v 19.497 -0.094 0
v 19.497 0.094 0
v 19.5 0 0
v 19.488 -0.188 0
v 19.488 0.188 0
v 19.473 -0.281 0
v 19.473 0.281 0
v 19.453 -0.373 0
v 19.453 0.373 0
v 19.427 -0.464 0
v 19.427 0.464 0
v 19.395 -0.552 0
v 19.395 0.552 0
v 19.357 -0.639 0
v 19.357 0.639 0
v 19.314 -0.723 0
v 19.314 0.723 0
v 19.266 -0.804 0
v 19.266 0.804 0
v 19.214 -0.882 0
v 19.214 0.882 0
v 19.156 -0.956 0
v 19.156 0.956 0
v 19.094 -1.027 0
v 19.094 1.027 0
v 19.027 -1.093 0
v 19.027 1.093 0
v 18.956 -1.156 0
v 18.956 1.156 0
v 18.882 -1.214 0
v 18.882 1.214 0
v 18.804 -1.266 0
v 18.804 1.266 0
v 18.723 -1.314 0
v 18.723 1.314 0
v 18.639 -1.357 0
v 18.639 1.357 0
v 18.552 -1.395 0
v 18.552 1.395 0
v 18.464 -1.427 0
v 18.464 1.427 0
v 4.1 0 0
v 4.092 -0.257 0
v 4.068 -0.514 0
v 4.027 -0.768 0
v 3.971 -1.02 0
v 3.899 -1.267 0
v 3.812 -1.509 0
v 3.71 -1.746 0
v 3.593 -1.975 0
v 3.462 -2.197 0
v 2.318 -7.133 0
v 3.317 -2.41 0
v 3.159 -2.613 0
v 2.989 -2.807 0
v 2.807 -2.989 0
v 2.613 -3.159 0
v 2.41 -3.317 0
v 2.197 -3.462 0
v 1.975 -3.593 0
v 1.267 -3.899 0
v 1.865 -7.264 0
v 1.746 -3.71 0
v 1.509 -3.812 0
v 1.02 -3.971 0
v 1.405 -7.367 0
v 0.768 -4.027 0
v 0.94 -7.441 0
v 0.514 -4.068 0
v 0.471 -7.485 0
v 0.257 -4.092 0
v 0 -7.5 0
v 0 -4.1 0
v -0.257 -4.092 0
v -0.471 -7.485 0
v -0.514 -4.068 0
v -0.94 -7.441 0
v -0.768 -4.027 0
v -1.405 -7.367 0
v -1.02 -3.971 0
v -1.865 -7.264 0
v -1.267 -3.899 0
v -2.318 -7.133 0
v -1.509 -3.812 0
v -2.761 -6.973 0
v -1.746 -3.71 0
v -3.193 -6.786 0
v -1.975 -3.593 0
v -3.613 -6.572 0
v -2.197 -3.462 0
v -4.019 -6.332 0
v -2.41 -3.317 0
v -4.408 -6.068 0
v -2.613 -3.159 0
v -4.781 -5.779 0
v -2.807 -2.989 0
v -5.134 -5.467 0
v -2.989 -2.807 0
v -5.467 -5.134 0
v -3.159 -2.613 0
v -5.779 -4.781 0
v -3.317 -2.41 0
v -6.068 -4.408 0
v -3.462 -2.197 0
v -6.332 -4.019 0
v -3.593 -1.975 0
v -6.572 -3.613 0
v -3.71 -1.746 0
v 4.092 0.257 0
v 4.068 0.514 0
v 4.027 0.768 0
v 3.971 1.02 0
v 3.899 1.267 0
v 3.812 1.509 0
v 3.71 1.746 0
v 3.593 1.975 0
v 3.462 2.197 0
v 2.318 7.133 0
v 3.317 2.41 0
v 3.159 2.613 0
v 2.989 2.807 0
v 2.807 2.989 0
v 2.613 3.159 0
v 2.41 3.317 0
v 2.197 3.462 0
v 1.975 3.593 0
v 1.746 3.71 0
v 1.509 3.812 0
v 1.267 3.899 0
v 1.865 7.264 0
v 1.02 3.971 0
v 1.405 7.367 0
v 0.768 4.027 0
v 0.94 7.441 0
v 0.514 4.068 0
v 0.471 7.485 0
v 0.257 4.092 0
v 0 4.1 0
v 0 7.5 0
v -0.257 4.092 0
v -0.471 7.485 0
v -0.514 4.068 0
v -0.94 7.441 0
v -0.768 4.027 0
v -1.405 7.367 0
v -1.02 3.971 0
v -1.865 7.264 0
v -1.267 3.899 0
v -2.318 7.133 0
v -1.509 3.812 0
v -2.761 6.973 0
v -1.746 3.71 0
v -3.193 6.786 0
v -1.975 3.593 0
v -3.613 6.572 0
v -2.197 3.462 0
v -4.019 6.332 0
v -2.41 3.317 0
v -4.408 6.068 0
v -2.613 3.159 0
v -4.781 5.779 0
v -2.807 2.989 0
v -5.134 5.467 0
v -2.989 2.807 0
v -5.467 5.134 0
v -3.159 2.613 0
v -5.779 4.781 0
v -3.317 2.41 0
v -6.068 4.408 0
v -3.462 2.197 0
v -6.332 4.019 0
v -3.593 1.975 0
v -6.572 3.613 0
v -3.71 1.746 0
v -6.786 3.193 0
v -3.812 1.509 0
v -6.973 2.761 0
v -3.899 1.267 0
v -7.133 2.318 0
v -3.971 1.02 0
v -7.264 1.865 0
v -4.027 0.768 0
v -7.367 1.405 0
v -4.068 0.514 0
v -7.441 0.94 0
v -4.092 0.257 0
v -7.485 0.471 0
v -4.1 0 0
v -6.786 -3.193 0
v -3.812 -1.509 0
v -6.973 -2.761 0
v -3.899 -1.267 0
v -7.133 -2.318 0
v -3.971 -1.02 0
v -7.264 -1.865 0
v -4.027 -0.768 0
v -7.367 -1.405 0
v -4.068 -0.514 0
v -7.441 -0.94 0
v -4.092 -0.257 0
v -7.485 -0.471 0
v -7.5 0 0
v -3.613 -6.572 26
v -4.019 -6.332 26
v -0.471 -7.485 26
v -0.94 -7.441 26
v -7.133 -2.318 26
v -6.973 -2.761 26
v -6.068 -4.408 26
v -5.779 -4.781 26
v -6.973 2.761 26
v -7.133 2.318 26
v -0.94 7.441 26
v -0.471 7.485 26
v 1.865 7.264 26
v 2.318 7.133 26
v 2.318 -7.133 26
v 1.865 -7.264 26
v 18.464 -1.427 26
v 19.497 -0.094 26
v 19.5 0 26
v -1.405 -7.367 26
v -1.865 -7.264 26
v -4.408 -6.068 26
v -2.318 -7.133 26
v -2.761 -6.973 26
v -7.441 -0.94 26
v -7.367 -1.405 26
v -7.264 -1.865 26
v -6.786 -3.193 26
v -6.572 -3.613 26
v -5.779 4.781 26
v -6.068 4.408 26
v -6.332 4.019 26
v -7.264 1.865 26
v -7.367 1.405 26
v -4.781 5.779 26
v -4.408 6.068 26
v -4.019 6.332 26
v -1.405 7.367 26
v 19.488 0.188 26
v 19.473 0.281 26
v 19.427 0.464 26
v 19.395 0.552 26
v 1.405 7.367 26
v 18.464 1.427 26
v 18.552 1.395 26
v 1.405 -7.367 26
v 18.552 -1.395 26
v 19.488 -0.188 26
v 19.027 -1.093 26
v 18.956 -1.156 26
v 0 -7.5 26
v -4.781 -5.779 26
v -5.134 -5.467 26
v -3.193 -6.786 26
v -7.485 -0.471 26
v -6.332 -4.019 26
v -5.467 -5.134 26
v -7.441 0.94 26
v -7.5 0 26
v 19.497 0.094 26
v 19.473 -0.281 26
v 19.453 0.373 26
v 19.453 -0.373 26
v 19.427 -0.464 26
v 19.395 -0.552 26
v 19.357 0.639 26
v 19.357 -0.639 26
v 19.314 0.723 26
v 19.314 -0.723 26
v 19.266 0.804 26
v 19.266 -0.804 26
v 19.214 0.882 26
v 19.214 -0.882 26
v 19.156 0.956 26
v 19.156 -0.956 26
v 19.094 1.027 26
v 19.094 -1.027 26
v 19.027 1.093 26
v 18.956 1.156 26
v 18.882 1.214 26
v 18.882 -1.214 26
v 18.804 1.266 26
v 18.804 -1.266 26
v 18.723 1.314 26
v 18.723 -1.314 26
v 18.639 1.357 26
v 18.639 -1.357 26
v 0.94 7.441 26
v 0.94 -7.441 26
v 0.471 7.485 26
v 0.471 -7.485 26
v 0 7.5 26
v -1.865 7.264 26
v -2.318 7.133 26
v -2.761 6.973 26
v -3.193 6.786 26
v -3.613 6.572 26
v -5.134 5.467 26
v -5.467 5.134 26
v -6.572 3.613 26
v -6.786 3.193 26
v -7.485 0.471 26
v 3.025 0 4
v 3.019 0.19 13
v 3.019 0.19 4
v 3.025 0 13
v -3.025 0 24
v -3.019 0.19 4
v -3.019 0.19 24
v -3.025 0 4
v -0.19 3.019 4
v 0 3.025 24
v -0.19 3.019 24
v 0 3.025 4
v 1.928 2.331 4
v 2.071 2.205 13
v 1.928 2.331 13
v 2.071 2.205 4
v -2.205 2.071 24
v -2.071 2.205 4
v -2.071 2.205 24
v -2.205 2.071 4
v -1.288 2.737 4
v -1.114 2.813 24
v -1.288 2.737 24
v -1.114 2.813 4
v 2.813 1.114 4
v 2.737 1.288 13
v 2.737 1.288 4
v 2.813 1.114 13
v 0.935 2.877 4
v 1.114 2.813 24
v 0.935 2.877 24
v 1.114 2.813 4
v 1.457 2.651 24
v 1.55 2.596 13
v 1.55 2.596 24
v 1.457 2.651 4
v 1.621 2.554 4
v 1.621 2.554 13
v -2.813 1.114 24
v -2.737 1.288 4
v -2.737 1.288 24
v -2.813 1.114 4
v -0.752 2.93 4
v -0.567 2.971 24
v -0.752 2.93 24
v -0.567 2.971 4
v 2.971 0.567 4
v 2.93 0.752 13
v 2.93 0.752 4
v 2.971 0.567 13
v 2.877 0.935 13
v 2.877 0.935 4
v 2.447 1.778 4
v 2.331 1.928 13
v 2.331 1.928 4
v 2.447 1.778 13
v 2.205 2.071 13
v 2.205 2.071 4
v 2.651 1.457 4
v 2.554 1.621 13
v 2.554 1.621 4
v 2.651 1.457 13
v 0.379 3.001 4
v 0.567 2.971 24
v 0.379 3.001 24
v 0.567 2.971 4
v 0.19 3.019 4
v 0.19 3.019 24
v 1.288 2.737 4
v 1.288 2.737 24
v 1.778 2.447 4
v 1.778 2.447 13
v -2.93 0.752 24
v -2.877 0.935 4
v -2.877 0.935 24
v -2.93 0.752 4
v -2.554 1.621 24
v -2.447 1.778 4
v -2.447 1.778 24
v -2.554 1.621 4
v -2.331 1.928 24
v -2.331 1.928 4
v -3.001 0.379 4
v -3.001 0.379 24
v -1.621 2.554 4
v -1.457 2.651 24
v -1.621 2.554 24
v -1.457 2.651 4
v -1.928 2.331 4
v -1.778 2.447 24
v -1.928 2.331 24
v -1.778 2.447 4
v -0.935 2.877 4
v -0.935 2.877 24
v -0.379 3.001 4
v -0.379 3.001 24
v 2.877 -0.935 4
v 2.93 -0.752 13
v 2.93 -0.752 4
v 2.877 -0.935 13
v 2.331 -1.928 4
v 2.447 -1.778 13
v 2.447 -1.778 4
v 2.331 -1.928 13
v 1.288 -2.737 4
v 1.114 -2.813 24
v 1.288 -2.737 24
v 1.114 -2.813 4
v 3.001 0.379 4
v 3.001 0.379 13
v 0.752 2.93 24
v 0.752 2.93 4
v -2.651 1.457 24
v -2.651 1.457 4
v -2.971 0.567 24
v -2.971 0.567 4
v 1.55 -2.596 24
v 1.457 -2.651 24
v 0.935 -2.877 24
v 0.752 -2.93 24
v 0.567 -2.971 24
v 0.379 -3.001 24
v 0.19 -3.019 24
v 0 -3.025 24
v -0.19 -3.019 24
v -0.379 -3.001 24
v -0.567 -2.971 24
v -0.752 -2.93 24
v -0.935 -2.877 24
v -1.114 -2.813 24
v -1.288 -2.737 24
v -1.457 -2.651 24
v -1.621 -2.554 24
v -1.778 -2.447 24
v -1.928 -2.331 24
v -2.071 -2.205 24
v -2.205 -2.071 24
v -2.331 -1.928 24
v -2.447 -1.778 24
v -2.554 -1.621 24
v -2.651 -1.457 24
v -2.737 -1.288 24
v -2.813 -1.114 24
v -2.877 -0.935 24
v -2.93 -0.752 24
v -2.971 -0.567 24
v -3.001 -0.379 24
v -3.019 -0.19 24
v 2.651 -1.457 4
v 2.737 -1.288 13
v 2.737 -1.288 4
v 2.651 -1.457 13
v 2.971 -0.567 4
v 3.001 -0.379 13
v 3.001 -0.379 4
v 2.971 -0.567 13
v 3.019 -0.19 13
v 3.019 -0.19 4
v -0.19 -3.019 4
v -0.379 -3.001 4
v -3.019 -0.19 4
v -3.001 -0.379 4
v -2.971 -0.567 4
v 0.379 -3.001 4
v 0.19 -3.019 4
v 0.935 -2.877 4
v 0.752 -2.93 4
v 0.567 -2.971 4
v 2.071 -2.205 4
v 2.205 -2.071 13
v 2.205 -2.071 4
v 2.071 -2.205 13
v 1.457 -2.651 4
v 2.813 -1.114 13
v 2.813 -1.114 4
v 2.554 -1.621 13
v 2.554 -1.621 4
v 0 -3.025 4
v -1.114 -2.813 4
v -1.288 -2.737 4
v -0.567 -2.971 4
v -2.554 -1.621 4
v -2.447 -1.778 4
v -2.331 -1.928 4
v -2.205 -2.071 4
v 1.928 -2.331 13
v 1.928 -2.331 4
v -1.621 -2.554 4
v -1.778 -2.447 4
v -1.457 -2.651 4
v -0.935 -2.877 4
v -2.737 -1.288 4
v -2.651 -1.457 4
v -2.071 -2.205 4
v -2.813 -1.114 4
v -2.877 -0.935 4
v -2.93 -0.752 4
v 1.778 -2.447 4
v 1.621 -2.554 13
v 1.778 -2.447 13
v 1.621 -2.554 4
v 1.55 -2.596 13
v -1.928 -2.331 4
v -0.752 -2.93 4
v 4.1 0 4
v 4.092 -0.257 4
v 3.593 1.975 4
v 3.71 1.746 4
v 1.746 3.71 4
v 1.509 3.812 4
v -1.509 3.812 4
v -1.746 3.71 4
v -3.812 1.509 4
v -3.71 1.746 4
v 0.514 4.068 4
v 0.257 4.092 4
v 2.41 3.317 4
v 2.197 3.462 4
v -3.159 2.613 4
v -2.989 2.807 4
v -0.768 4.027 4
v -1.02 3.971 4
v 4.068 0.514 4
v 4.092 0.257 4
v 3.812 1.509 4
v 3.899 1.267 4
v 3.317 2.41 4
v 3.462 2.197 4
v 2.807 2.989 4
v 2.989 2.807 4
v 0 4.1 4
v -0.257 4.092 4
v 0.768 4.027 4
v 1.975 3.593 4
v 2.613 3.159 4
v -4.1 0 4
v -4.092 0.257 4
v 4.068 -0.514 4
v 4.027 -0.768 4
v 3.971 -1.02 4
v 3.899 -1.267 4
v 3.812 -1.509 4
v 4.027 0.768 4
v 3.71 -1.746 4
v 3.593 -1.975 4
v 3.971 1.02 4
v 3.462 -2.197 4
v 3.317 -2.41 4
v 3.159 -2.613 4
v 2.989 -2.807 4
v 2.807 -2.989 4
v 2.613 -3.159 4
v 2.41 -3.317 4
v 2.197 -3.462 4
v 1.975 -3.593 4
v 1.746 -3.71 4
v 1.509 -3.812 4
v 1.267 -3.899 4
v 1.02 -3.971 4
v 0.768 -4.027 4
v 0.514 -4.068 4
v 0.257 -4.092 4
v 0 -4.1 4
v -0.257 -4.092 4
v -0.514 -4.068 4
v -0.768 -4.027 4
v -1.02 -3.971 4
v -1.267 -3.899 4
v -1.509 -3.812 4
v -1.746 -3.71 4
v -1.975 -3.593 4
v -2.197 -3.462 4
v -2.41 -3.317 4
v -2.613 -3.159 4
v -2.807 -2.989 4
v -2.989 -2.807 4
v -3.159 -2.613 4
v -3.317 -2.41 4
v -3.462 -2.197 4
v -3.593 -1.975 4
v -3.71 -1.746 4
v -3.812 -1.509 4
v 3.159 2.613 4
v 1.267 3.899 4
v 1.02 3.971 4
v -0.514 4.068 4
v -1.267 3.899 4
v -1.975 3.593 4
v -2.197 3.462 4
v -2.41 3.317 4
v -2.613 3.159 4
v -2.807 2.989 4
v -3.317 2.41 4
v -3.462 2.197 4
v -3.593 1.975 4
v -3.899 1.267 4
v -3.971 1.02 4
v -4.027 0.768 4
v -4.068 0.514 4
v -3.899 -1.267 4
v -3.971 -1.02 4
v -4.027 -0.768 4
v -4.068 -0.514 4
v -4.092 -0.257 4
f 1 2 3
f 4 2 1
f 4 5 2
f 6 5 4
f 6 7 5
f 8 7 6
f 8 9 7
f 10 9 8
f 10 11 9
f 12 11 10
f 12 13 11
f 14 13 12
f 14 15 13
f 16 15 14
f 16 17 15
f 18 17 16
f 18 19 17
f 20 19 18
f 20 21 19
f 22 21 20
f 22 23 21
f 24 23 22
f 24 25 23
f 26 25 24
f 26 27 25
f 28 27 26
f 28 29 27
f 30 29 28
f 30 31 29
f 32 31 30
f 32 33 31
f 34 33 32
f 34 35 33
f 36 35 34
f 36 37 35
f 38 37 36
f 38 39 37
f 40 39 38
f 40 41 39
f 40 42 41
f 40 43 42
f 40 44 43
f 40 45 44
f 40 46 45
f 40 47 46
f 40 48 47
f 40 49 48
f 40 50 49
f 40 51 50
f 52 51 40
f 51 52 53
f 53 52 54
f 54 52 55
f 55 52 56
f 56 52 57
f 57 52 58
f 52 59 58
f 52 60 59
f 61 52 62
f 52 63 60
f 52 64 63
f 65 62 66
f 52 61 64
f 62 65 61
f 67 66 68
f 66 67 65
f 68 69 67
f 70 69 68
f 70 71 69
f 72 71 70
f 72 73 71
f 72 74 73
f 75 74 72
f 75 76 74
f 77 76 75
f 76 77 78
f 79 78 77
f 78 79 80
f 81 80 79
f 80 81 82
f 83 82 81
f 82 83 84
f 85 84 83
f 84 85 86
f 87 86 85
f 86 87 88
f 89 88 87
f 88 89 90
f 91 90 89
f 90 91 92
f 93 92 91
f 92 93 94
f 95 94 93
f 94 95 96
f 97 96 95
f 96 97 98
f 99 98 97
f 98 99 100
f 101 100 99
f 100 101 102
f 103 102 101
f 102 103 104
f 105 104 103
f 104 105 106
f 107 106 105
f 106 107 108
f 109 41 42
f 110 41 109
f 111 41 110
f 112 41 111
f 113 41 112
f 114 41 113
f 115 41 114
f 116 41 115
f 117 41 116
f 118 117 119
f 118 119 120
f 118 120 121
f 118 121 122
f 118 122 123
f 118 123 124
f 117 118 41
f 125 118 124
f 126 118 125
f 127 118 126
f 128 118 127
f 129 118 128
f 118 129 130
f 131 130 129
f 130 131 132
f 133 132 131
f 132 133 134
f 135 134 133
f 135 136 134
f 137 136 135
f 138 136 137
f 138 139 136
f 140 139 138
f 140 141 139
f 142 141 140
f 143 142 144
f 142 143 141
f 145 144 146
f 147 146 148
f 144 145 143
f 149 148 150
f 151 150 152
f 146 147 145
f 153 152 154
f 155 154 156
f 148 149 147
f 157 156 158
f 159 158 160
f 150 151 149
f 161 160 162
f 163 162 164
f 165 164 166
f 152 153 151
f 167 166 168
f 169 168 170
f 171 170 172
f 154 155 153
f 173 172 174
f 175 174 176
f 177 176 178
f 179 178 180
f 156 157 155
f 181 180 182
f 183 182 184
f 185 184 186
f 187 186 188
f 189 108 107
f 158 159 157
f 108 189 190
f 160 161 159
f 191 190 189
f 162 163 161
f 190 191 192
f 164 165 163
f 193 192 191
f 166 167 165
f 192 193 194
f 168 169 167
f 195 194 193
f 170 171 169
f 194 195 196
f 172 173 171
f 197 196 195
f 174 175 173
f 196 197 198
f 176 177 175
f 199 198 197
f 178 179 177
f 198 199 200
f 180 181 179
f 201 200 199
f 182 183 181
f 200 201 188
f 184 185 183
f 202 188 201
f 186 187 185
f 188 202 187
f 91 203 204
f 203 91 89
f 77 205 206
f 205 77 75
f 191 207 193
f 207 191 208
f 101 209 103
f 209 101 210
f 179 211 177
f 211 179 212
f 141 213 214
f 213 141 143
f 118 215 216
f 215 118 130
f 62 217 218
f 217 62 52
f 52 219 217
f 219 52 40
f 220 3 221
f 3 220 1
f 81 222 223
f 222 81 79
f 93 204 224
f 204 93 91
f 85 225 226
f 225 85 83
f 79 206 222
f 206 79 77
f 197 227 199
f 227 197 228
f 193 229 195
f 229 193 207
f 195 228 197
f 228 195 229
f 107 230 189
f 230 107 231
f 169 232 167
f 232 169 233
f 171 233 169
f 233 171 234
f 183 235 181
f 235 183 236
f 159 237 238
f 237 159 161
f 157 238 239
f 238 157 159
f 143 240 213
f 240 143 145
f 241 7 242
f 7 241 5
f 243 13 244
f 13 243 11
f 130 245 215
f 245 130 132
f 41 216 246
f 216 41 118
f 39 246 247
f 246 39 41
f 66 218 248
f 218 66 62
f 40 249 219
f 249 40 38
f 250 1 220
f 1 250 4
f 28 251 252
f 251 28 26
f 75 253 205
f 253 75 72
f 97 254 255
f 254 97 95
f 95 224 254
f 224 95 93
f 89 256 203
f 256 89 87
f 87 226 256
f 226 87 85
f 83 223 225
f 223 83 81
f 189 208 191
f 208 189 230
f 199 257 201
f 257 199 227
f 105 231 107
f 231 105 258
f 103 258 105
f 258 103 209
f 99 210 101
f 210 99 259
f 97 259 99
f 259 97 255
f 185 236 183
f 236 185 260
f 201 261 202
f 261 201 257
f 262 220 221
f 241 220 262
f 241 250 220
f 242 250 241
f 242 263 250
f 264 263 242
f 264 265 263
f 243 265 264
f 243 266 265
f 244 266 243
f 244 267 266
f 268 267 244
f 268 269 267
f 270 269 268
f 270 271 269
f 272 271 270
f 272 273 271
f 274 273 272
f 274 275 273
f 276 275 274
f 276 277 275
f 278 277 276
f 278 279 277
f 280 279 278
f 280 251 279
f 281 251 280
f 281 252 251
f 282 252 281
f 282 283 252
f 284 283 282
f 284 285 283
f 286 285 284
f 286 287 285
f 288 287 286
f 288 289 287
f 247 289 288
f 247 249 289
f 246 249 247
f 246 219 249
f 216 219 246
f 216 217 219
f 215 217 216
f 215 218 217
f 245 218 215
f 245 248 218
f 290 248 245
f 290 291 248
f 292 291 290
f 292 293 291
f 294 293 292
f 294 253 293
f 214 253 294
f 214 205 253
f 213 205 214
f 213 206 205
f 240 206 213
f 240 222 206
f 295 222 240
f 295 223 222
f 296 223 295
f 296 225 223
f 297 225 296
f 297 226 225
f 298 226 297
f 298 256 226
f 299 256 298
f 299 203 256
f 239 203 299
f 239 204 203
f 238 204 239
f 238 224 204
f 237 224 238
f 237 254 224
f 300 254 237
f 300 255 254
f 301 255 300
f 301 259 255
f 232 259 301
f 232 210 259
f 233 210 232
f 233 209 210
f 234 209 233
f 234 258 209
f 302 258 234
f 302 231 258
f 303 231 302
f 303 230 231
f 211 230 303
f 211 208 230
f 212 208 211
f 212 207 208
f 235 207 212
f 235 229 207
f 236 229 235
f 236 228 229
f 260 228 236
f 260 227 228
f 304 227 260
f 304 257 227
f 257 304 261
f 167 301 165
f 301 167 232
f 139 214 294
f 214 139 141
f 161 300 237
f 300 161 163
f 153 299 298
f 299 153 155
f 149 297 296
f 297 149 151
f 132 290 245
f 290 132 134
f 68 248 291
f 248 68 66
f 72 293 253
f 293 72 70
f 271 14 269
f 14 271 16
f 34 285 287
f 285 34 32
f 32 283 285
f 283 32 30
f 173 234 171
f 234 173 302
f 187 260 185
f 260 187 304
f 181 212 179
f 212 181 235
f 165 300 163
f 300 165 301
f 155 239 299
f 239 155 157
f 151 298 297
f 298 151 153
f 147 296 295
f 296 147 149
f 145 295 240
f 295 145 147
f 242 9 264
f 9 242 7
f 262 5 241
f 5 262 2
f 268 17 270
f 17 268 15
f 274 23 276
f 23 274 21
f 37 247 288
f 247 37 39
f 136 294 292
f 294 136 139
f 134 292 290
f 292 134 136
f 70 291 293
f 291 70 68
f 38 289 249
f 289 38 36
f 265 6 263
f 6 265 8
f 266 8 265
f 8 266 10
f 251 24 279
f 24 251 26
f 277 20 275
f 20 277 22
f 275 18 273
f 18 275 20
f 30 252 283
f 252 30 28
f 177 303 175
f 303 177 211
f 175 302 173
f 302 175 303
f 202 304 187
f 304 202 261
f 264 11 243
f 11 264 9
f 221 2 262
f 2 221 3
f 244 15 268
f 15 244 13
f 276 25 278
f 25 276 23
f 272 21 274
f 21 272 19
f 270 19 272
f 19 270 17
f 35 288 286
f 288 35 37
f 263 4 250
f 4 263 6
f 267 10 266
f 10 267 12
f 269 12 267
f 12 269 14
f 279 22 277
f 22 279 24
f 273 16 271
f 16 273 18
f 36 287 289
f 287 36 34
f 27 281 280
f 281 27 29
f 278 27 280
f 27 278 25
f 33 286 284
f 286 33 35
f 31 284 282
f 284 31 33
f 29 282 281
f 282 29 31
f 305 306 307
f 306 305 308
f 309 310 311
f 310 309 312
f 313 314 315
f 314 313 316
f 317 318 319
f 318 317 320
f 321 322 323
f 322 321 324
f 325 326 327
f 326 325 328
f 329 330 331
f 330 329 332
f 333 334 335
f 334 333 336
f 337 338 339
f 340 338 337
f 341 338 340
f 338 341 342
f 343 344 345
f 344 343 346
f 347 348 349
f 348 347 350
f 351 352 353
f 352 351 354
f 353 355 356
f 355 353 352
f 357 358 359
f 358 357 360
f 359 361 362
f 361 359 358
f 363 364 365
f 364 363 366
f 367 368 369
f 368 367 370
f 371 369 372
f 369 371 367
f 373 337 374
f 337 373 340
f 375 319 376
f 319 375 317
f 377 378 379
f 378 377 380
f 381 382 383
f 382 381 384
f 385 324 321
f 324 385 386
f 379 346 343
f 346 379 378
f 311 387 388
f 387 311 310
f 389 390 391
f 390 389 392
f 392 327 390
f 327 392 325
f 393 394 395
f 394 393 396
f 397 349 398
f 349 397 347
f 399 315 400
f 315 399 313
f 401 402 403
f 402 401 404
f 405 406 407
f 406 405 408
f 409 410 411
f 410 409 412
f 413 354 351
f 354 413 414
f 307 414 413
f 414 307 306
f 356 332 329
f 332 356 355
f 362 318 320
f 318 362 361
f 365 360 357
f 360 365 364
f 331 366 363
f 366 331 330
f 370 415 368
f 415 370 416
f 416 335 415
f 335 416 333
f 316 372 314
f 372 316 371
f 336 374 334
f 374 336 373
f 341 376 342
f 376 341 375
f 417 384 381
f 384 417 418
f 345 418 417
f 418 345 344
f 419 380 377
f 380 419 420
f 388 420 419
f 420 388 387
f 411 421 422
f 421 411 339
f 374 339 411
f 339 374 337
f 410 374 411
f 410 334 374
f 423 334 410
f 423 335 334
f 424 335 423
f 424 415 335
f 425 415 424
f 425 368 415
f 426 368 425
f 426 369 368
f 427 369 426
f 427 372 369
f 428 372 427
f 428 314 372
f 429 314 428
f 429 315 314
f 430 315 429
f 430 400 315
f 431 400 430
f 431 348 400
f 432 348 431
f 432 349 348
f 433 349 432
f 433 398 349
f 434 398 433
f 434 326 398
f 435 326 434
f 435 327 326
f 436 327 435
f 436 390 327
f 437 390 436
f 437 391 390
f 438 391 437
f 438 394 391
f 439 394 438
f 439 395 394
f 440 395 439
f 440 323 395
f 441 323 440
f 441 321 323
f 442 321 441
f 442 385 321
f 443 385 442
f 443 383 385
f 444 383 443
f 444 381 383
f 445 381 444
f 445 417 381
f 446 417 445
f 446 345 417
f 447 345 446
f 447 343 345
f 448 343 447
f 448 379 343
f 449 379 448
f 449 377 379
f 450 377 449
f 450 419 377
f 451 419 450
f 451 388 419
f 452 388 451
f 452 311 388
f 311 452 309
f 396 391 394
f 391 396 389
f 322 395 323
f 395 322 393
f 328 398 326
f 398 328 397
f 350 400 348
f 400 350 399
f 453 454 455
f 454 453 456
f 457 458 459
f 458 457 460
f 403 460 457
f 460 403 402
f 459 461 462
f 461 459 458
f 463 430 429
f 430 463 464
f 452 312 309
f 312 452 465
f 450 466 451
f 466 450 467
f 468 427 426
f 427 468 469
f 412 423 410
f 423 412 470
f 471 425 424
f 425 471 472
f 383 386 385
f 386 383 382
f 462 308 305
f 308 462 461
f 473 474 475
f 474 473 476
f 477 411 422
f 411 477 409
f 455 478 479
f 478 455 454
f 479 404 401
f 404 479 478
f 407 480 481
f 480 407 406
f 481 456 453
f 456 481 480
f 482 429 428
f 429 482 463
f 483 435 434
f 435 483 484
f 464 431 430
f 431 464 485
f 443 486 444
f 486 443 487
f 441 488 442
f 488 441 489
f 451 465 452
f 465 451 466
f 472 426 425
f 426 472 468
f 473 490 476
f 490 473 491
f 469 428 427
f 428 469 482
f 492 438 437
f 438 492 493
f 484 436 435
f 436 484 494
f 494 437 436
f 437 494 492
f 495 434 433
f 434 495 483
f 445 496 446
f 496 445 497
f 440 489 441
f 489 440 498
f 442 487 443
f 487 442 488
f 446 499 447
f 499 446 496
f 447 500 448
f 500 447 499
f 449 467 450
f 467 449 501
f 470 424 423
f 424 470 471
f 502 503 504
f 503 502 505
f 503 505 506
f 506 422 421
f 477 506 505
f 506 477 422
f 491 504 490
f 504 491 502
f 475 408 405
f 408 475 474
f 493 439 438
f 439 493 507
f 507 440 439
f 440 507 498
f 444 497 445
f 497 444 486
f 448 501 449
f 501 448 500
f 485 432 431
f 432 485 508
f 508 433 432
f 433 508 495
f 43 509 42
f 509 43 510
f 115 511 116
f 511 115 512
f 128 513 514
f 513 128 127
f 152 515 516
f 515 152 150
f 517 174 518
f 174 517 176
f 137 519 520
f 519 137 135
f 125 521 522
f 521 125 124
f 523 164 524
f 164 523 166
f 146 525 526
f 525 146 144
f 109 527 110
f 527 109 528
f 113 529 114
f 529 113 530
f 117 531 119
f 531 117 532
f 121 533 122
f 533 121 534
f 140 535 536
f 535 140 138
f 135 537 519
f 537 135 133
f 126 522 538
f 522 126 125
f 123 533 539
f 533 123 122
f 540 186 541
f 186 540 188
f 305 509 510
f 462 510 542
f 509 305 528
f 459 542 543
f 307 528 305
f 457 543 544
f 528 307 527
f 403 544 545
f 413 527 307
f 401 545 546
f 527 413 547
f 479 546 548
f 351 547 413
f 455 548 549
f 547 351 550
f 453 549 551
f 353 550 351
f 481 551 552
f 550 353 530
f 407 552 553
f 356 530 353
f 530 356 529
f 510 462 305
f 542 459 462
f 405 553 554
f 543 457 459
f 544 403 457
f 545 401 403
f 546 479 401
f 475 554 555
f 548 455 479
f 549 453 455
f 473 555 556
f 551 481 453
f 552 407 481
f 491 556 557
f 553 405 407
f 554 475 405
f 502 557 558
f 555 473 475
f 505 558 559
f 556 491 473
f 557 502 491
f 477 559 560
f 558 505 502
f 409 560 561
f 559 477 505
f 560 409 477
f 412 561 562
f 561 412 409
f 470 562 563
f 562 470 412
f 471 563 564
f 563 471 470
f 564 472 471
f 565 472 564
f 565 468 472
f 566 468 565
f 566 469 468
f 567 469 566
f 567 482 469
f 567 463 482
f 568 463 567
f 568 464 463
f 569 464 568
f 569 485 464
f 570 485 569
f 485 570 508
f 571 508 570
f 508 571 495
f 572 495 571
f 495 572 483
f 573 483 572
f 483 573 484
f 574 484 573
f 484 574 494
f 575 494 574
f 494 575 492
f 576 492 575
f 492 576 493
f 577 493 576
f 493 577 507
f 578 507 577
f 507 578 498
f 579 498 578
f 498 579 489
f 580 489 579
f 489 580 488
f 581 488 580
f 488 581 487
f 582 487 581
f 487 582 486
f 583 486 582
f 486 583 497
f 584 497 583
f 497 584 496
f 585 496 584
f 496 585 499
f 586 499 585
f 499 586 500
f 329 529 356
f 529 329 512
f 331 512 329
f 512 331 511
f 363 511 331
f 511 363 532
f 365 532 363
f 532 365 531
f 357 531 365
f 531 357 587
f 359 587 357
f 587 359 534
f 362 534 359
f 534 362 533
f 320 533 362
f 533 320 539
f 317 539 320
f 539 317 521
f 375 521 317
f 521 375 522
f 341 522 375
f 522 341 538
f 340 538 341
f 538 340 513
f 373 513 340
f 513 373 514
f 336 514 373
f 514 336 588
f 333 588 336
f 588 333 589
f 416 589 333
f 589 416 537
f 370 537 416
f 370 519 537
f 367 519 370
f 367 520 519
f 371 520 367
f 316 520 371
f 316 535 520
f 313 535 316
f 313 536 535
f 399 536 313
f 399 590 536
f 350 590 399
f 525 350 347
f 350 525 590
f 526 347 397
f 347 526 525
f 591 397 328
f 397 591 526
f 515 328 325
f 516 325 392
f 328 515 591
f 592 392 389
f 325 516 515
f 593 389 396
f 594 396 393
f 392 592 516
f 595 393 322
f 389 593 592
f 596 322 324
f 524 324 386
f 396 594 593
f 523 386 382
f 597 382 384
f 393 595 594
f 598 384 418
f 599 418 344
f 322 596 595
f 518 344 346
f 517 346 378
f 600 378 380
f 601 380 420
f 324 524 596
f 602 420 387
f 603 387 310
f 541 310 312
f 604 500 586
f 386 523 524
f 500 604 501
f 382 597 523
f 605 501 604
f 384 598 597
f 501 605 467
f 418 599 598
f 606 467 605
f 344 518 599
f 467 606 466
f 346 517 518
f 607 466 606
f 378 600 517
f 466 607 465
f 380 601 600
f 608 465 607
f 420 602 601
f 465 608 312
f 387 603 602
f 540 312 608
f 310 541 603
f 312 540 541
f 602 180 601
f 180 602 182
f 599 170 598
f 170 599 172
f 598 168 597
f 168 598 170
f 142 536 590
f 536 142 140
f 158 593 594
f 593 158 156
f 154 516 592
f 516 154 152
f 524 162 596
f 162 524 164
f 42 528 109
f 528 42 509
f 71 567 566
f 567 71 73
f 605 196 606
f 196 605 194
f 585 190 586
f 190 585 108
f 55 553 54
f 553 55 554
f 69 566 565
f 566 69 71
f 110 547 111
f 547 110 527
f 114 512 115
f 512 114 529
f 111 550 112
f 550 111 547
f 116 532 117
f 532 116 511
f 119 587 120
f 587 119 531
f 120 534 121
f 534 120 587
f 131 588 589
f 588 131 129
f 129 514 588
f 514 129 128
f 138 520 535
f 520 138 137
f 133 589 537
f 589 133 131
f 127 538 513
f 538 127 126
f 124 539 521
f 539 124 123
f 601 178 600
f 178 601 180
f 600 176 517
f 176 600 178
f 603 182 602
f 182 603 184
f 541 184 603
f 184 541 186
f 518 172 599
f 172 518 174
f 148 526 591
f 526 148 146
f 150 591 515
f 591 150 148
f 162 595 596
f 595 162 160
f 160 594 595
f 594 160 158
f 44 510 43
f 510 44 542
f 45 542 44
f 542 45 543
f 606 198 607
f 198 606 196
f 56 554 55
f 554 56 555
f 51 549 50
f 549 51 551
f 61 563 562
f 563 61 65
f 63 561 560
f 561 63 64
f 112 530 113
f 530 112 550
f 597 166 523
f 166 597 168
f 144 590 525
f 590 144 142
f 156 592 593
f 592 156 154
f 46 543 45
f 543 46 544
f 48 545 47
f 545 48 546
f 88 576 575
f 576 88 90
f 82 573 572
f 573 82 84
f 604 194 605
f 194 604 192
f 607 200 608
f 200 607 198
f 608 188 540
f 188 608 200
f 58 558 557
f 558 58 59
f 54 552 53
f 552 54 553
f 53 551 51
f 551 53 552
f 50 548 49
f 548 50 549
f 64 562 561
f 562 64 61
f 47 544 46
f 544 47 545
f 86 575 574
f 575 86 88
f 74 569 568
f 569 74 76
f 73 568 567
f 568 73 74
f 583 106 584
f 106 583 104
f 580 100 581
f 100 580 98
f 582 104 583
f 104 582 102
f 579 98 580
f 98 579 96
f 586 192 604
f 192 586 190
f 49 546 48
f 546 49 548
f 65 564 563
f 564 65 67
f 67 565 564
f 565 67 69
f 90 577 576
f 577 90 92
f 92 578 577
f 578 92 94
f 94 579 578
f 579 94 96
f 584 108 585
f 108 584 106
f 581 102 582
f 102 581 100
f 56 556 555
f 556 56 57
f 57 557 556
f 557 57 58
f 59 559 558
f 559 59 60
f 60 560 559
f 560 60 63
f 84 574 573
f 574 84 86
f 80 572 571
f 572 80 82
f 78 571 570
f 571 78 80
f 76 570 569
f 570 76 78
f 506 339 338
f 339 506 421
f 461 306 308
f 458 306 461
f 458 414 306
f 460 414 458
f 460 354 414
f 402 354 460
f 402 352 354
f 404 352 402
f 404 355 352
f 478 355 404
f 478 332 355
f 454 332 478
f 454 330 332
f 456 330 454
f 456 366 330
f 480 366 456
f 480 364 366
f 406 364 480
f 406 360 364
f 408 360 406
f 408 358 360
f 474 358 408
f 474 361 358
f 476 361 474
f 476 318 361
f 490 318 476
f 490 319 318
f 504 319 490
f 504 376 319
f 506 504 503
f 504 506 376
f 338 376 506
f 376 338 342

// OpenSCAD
$fn=100;
difference(){
    hull(){
        cylinder(h=26, d=15);
        translate([18,0,0]) cylinder(h=26, d=3);
    }
    cylinder(h=24, d=6.05);
    cylinder(h=4, d=8.2);
}
translate([1.55,-3.025,24-11]) cube([1.5,6.05,11]);
